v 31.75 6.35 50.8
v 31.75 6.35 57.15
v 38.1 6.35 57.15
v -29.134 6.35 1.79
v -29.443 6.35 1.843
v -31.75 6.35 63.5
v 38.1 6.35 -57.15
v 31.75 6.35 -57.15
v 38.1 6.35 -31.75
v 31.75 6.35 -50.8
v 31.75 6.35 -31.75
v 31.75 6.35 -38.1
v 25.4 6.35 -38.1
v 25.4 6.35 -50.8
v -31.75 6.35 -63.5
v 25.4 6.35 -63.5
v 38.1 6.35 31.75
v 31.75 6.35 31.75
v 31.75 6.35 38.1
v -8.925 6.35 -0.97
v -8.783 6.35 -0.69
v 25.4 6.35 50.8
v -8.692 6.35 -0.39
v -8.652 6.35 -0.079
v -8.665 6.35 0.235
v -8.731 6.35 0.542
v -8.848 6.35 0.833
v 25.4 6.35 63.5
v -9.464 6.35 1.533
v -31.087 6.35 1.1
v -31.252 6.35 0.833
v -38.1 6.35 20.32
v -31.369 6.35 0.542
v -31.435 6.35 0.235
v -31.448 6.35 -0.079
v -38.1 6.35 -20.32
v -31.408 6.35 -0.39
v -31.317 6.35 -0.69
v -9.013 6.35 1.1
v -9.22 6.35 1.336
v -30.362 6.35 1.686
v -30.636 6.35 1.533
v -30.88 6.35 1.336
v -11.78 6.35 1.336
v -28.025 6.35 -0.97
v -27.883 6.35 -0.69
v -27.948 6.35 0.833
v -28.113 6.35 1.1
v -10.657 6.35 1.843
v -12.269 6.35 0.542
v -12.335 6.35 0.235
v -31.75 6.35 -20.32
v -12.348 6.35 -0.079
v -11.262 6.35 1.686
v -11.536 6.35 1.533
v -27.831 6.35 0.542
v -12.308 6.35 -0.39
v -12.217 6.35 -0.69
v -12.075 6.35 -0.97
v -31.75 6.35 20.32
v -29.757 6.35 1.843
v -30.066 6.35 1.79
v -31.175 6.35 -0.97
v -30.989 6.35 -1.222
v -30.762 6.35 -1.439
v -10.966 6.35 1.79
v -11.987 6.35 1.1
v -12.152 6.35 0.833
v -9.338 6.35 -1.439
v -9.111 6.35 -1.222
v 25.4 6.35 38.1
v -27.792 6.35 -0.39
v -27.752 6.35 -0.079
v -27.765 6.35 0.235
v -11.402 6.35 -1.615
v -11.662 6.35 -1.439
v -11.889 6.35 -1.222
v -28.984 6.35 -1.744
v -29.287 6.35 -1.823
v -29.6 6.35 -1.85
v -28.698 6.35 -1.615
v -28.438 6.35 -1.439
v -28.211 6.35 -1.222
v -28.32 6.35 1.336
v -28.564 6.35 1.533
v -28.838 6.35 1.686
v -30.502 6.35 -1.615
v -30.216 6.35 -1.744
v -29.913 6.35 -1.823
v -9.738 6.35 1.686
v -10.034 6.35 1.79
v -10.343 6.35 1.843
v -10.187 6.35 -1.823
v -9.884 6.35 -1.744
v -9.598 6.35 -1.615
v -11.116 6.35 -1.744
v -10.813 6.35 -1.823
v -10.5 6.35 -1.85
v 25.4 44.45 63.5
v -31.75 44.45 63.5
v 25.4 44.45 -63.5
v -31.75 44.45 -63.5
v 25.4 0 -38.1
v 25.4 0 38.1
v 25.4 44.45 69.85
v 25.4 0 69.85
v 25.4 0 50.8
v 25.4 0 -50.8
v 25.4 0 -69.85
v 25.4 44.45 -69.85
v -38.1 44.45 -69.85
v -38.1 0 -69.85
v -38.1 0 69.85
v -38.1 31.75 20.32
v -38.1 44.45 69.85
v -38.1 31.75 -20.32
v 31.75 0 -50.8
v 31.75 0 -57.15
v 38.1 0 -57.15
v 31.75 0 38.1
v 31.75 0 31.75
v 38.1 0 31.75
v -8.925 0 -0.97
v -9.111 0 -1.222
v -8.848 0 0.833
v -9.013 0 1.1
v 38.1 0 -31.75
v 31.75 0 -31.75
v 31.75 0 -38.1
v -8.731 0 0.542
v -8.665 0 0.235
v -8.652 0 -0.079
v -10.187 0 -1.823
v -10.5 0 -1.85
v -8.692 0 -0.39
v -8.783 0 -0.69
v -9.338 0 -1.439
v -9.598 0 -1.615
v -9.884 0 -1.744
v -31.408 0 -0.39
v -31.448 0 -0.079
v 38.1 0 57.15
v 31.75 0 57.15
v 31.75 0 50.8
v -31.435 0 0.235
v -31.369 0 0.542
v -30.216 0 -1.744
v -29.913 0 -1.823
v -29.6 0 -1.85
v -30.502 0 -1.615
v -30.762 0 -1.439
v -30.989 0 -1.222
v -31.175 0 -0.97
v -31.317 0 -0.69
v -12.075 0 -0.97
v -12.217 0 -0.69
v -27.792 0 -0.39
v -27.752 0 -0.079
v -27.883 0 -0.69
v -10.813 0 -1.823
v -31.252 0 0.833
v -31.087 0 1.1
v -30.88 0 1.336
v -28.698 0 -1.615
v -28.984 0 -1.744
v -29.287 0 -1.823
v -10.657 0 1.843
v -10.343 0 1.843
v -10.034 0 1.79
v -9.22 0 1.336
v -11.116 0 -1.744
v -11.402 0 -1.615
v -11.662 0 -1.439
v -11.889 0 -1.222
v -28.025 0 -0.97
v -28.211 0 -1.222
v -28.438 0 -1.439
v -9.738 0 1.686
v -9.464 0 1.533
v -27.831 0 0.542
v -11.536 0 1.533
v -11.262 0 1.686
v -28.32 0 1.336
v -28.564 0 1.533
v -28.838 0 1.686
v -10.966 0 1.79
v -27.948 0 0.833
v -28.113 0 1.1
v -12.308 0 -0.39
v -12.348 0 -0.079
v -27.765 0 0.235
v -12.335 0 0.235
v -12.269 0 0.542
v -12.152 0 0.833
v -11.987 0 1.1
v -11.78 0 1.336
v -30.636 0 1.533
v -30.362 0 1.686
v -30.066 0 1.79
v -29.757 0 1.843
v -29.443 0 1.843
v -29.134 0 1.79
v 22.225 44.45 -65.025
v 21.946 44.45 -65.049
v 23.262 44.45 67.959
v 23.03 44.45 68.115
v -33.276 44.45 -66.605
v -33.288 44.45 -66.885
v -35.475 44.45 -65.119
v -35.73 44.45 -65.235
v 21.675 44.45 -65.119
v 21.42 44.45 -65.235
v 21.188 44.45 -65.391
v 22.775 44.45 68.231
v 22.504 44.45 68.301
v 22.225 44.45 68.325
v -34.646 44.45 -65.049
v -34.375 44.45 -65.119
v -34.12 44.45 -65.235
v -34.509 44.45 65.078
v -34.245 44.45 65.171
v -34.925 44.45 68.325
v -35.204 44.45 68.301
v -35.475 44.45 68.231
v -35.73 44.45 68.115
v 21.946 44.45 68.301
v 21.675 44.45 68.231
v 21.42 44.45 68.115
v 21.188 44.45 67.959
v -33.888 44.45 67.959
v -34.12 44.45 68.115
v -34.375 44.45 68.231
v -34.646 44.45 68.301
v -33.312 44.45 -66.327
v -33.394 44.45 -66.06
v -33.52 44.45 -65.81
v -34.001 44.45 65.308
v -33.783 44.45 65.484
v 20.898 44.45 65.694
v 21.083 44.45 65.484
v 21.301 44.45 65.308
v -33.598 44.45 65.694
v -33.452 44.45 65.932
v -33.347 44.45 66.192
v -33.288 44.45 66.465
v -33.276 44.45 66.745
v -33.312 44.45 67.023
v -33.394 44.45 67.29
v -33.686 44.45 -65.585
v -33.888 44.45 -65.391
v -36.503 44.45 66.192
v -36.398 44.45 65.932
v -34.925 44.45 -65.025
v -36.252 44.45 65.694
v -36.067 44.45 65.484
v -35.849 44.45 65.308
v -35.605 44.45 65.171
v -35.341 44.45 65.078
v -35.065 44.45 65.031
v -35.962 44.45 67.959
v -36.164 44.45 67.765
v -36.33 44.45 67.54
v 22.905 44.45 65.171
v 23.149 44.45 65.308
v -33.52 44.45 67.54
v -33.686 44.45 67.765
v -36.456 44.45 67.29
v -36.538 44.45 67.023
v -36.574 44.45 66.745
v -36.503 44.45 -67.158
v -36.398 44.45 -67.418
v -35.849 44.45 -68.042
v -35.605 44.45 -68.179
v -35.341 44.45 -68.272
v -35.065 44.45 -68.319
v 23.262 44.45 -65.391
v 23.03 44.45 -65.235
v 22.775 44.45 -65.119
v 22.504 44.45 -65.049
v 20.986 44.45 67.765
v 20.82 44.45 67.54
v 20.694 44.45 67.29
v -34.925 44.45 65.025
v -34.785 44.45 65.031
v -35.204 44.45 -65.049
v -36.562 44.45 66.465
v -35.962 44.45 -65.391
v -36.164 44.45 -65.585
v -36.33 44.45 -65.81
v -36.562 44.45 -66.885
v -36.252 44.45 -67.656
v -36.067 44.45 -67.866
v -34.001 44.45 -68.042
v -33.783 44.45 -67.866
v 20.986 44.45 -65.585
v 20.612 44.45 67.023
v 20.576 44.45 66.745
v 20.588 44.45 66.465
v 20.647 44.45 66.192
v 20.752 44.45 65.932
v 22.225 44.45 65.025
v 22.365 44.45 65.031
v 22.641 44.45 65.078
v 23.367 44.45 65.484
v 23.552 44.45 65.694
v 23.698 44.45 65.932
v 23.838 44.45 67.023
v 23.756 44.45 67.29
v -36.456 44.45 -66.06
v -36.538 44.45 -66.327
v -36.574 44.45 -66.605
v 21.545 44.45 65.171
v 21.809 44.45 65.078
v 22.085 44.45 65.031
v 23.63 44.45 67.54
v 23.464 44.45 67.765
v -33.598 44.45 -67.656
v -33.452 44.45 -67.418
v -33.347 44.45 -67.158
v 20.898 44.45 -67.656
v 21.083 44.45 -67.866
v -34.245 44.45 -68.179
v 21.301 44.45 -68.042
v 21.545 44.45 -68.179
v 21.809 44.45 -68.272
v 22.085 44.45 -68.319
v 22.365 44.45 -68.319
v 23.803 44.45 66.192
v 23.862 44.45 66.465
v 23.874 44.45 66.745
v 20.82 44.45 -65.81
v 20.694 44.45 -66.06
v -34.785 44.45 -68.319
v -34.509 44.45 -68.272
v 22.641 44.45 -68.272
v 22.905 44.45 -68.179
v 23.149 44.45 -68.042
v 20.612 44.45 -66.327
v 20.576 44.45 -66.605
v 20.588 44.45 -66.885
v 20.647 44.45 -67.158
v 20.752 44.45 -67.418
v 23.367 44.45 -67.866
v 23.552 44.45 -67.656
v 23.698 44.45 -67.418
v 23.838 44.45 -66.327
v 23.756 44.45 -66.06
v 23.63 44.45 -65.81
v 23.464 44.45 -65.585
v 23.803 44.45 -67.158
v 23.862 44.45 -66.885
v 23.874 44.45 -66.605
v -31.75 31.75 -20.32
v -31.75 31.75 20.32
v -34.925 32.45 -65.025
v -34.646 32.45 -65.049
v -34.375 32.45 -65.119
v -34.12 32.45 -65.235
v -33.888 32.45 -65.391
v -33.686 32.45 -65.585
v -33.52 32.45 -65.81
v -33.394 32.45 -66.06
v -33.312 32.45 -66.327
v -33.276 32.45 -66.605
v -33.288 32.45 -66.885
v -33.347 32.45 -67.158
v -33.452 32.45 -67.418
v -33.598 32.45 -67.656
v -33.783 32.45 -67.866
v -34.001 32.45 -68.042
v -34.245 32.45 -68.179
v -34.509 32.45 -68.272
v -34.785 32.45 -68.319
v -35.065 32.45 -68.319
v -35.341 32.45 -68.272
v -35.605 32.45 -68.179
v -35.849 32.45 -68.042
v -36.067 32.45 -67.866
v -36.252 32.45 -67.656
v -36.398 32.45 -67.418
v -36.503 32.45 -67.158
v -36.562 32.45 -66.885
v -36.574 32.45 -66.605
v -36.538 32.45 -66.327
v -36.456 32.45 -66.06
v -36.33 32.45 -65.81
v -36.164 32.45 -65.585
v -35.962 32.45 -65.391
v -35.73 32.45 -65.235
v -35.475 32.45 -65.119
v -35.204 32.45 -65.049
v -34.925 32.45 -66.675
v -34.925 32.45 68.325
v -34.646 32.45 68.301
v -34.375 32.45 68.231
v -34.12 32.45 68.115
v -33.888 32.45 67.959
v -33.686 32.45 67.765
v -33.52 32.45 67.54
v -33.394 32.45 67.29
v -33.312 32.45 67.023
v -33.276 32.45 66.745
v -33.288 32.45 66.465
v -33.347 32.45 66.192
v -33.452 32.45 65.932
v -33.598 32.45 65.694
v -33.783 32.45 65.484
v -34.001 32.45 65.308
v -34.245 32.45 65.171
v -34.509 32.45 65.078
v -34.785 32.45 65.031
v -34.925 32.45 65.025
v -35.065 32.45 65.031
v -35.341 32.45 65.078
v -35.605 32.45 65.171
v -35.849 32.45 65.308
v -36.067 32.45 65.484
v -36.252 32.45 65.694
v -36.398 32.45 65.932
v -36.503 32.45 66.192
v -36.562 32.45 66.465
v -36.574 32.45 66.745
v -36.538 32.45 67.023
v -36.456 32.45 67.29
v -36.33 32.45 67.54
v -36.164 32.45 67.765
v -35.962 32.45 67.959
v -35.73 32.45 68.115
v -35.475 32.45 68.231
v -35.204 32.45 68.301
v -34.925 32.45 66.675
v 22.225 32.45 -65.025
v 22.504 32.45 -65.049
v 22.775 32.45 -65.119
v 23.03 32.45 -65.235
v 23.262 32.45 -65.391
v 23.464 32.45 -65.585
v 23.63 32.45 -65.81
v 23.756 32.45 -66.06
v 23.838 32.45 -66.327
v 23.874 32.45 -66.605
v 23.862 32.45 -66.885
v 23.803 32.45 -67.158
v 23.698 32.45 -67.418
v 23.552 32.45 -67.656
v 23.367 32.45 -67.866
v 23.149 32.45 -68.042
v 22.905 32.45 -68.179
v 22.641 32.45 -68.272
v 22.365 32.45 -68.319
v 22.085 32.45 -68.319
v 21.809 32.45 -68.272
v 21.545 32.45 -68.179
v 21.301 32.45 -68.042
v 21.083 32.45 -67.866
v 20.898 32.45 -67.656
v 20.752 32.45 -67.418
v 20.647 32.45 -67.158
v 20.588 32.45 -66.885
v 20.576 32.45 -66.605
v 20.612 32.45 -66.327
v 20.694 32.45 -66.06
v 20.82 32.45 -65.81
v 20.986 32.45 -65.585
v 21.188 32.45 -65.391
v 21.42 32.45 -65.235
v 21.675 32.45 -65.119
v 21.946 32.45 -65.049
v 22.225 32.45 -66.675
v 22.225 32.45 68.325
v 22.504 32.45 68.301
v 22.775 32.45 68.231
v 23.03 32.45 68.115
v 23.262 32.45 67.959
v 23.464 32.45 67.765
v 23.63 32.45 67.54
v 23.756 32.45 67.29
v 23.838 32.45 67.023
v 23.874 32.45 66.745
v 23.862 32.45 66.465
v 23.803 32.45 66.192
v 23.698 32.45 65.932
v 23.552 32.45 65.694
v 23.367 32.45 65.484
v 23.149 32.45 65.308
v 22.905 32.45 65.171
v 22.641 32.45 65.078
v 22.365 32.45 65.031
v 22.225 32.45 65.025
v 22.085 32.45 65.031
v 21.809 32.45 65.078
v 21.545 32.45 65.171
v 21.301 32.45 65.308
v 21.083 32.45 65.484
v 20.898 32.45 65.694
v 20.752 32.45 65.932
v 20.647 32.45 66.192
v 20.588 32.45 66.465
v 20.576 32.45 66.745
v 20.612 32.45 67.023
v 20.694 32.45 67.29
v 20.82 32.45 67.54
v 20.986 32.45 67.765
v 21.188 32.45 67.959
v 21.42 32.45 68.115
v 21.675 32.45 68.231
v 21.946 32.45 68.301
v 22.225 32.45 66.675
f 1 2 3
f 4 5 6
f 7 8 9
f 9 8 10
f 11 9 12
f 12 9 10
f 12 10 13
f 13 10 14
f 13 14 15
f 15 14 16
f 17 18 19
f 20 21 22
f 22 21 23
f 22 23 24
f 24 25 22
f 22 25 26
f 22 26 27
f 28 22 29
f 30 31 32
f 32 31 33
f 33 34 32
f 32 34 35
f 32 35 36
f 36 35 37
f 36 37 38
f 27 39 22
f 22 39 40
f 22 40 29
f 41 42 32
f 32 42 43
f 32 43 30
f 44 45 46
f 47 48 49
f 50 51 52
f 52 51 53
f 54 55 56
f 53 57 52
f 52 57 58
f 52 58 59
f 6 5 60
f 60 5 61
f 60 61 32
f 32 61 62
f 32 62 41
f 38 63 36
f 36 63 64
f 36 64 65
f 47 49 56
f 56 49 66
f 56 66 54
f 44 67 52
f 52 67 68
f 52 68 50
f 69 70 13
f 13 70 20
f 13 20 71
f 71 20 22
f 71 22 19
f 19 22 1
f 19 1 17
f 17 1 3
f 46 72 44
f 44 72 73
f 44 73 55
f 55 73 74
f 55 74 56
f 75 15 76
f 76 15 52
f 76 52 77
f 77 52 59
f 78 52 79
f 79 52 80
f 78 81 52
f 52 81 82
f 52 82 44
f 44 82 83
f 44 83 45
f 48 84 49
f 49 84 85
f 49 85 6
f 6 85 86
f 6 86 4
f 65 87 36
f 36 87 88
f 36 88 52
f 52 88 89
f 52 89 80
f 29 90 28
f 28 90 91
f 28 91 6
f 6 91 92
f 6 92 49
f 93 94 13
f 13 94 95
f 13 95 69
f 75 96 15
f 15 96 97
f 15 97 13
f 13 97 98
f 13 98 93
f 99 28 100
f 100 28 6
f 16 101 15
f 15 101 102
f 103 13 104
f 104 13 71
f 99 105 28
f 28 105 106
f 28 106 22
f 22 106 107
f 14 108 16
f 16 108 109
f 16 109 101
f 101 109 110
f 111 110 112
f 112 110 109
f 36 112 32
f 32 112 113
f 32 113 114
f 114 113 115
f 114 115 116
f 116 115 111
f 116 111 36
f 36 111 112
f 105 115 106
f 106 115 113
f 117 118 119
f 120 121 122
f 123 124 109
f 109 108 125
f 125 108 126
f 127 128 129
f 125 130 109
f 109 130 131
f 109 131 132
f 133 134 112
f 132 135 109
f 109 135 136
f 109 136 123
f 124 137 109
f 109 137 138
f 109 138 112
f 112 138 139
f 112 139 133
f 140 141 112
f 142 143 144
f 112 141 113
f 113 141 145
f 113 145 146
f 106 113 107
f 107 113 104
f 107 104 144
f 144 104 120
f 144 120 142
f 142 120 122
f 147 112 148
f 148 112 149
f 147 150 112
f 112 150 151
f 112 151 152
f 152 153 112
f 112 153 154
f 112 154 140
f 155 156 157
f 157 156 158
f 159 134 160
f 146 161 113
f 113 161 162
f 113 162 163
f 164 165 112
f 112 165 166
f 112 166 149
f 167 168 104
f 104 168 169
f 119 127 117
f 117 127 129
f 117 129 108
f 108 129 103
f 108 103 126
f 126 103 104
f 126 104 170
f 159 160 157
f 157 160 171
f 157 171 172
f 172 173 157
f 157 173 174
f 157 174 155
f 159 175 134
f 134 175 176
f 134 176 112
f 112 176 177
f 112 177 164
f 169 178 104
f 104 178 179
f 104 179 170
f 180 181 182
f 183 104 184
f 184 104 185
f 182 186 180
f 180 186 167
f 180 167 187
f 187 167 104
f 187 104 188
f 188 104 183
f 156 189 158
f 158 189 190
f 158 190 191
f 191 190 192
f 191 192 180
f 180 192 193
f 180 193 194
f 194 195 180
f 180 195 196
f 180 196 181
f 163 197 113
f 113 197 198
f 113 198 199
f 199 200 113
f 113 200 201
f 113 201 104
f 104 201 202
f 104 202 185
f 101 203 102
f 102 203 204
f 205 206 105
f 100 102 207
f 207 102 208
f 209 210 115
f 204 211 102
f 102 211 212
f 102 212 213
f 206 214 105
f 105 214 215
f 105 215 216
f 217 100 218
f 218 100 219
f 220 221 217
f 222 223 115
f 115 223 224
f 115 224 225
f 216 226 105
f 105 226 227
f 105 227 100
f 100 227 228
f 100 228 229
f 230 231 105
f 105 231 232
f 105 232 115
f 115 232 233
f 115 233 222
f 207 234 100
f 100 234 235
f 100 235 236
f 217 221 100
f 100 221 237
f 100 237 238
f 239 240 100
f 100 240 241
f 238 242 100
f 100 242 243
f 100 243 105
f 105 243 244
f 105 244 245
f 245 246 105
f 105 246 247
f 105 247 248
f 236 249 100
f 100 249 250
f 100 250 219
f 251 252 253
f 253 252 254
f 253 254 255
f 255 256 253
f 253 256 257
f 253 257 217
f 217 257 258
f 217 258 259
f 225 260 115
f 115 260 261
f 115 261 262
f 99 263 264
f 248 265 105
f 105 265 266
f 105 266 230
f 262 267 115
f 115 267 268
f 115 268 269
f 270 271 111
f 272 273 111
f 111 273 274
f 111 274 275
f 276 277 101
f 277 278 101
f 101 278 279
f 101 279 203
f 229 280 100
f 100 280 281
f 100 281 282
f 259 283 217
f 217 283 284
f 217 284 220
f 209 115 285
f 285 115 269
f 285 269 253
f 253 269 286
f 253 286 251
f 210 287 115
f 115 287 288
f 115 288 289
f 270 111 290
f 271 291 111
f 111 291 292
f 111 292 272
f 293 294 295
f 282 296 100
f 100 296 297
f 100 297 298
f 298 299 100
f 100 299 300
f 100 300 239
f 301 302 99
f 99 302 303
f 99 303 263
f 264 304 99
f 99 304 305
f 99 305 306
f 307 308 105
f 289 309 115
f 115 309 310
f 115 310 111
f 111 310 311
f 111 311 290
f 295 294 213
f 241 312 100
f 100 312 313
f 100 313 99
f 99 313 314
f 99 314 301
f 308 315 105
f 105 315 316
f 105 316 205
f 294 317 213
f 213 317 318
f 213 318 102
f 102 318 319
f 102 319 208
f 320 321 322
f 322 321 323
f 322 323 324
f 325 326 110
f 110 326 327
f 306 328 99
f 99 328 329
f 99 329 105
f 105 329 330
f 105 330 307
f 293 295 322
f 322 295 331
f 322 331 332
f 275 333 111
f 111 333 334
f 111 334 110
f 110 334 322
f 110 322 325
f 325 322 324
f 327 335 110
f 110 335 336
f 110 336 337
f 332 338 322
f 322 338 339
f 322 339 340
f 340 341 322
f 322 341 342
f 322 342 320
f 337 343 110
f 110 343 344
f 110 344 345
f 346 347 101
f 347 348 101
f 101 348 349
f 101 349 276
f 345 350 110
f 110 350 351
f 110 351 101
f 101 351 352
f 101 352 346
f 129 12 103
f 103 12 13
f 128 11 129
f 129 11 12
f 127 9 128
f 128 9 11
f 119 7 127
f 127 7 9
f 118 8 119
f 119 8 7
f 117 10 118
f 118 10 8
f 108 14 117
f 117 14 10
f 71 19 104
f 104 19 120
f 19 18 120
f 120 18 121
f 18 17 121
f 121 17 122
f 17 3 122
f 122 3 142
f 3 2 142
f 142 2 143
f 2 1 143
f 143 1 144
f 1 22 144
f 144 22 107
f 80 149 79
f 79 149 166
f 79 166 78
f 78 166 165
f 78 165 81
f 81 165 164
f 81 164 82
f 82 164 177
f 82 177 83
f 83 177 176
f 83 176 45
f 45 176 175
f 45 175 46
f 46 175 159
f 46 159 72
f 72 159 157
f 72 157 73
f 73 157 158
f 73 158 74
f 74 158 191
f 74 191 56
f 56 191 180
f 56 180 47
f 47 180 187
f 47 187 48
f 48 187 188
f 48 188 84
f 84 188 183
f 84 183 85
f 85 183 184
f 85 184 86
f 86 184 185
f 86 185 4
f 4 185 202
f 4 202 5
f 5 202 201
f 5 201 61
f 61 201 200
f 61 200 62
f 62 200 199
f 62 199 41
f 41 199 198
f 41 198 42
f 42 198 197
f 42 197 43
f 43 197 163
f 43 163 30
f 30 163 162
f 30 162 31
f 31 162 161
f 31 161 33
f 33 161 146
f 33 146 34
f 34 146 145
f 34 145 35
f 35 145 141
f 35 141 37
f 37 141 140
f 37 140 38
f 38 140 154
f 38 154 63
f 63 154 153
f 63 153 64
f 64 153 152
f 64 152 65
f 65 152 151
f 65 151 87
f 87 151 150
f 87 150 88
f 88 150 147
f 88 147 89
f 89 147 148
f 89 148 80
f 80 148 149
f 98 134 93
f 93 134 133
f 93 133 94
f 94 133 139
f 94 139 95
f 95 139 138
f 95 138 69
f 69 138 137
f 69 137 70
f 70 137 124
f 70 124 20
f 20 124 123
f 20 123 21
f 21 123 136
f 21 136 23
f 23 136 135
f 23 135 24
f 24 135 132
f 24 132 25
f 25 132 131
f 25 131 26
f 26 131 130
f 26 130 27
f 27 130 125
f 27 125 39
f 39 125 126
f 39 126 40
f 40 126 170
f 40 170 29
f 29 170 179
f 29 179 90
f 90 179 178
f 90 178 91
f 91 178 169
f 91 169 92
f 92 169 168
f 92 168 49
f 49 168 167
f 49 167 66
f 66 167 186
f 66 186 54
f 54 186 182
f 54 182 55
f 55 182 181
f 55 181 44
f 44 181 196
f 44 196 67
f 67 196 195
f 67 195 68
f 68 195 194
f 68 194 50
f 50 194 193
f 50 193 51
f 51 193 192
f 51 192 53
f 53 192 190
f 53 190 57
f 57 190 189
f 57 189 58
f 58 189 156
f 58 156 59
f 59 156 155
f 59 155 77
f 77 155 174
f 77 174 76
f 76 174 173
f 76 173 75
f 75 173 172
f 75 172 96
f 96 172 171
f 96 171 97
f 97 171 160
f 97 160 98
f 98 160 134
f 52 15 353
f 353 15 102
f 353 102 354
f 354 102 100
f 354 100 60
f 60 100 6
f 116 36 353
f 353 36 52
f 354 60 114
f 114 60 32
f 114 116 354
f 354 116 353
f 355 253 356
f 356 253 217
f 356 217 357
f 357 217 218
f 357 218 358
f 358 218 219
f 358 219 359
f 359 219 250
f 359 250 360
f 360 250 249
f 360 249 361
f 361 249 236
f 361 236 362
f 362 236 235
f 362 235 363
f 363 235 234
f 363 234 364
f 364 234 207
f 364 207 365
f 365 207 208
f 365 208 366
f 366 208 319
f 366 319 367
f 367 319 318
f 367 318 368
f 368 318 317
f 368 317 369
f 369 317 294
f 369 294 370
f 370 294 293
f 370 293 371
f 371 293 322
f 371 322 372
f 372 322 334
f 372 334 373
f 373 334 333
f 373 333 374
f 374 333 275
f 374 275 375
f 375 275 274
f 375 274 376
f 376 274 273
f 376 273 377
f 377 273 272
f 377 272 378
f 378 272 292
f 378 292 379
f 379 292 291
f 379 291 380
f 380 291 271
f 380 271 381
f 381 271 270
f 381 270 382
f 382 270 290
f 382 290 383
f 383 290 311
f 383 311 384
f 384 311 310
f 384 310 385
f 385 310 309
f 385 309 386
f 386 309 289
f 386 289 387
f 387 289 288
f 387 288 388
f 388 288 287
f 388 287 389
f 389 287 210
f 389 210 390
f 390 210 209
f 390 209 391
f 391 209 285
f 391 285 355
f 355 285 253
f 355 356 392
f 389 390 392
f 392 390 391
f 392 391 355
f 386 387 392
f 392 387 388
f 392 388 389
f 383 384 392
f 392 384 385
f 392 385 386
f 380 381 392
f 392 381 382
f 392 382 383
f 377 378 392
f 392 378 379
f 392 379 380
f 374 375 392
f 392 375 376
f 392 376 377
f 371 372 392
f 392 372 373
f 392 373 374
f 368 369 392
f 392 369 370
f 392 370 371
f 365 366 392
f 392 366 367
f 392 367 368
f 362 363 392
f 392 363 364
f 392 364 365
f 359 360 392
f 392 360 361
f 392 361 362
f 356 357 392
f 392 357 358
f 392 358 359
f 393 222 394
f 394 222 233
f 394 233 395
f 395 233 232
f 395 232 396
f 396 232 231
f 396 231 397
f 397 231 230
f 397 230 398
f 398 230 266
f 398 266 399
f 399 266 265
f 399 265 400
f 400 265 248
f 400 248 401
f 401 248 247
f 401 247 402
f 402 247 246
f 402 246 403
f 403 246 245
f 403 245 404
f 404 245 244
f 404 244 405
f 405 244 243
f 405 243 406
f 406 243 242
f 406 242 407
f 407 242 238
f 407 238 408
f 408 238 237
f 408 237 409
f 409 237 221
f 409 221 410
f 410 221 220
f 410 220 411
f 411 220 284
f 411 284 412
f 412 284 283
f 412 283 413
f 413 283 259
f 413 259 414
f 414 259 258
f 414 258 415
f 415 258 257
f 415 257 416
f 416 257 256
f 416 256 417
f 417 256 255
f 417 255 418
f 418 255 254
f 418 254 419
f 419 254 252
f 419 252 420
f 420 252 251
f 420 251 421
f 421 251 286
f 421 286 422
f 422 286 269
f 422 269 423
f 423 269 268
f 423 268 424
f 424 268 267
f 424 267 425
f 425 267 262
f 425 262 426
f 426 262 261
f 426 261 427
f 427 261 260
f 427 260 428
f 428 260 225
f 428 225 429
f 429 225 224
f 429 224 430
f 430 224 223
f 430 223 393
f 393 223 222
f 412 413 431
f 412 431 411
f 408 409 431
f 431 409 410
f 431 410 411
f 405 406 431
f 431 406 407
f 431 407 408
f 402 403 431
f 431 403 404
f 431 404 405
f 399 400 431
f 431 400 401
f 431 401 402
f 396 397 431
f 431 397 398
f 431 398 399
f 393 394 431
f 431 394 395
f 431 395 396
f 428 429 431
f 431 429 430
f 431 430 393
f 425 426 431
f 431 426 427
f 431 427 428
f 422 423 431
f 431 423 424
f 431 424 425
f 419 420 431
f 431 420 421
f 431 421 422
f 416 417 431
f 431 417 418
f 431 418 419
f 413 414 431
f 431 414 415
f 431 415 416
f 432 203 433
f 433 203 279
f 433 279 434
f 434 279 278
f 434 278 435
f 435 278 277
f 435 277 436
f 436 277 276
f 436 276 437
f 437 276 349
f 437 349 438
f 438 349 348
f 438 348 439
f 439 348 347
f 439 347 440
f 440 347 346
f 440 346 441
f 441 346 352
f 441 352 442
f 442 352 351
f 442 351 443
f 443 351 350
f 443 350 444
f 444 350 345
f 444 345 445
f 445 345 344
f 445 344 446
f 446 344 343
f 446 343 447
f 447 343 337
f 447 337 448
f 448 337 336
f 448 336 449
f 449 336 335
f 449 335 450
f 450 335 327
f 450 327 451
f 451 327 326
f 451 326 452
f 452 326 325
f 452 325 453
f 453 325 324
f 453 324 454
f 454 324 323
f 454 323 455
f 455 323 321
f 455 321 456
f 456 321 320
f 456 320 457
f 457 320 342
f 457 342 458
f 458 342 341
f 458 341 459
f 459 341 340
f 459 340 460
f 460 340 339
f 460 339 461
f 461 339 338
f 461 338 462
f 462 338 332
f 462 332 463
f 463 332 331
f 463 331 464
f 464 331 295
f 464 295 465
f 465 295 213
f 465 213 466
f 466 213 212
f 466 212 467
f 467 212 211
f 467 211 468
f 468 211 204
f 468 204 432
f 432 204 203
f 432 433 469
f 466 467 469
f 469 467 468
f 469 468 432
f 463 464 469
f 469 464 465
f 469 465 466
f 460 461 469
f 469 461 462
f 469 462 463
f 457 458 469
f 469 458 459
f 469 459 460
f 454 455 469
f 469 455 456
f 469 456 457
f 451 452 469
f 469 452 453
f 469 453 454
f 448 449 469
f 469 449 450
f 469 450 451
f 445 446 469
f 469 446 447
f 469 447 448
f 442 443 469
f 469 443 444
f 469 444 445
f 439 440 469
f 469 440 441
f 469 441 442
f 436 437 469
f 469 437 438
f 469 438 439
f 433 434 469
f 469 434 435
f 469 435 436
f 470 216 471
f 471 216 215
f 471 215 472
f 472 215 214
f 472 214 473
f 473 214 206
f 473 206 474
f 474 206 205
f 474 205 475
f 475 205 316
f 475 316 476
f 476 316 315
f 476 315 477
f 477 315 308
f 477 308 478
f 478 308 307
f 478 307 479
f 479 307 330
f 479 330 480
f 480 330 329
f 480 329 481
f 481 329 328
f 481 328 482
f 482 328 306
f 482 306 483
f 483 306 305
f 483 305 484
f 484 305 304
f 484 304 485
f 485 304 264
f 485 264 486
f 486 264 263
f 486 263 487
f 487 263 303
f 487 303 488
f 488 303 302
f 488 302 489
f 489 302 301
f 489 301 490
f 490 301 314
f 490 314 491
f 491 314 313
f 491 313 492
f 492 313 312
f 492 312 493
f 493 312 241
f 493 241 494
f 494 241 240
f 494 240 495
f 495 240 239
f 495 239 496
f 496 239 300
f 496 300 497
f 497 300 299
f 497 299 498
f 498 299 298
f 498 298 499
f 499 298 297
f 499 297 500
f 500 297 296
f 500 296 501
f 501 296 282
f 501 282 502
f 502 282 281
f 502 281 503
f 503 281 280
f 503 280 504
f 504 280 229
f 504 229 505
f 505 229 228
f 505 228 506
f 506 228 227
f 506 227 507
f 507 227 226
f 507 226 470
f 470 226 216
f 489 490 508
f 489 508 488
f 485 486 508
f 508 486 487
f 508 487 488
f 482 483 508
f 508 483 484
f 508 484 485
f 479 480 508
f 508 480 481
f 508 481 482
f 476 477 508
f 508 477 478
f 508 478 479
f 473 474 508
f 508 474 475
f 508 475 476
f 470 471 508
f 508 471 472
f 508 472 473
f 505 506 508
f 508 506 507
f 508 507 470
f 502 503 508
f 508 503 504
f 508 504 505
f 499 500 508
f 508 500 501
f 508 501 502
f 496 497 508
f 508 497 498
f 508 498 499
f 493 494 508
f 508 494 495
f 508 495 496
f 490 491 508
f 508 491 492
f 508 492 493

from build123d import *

# Parameters (mm, degrees)
SKETCH1_W                                  = 63.5
SKETCH1_H                                  = 139.7
BOSS_EXTRUDE1_DEPTH                        = 6.35
SKETCH3_W                                  = 63.5
SKETCH3_H                                  = 6.35
BOSS_EXTRUDE2_DEPTH                        = 38.1
BOSS_EXTRUDE3_DEPTH                        = 6.35
SKETCH7_R                                  = 1.85
CUT_EXTRUDE1_DEPTH                         = 92.139645599
SKETCH8_W                                  = 6.35
SKETCH8_H                                  = 43.18
BOSS_EXTRUDE4_DEPTH                        = 38.1
SKETCH9_W                                  = 40.64
SKETCH9_H                                  = 12.7
BOSS_EXTRUDE5_DEPTH                        = 6.35
SKETCH10_R                                 = 1.65
CUT_EXTRUDE2_DEPTH                         = 12
MIRROR2_AT_THE_SECOND_PLANE_COPY_1_SKETC_R = 1.65
MIRROR2_AT_THE_SECOND_PLANE_COPY_1_DEPTH   = 12


with BuildPart() as part:
    # Sketch1 → Boss-Extrude1 (new body)
    with BuildSketch(Plane(origin=(0, 0, 0), x_dir=(1, 0, 0), z_dir=(0, 1, 0))):
        with Locations((-6.35, 0)):
            Rectangle(SKETCH1_W, SKETCH1_H)
    extrude(amount=BOSS_EXTRUDE1_DEPTH)

    # Sketch3 → Boss-Extrude2 (add)
    with BuildSketch(Plane(origin=(0, 6.35, 0), x_dir=(1, 0, 0), z_dir=(0, 1, 0))):
        with Locations((-6.35, 66.675)):
            Rectangle(SKETCH3_W, SKETCH3_H)
        with Locations((-6.35, -66.675)):
            Rectangle(SKETCH3_W, SKETCH3_H)
    extrude(amount=BOSS_EXTRUDE2_DEPTH)

    # Sketch6 → Boss-Extrude3 (add)
    with BuildSketch(Plane(origin=(0, 6.35, 0), x_dir=(1, 0, 0), z_dir=(0, 1, 0))):
        Polygon((25.4, 50.8), (31.75, 50.8), (31.75, 57.15), (38.1, 57.15), (38.1, 31.75), (31.75, 31.75), (31.75, 38.1), (25.4, 38.1), align=None)
    boss_extrude3 = extrude(amount=-BOSS_EXTRUDE3_DEPTH)

    # Mirror1: Boss-Extrude3 across plane
    add(boss_extrude3.mirror(Plane.XY))

    # Sketch7 → Cut-Extrude1 (cut, through all)
    with BuildSketch(Plane.XZ):
        with Locations(Location((-10.5, 0, 0), (0, 0, 270))):
            Circle(SKETCH7_R)
        with Locations(Location((-29.6, 0, 0), (0, 0, 270))):
            Circle(SKETCH7_R)
    extrude(amount=-CUT_EXTRUDE1_DEPTH, mode=Mode.SUBTRACT)

    # Sketch8 → Boss-Extrude4 (add)
    with BuildSketch(Plane(origin=(0, 6.35, 0), x_dir=(1, 0, 0), z_dir=(0, 1, 0))):
        with Locations((-34.925, 41.91)):
            Rectangle(SKETCH8_W, SKETCH8_H)
        with Locations((-34.925, -41.91)):
            Rectangle(SKETCH8_W, SKETCH8_H)
    extrude(amount=BOSS_EXTRUDE4_DEPTH)

    # Sketch9 → Boss-Extrude5 (add)
    with BuildSketch(Plane.ZY.offset(38.1)):
        with Locations((0, 38.1)):
            Rectangle(SKETCH9_W, SKETCH9_H)
    extrude(amount=-BOSS_EXTRUDE5_DEPTH)

    # Sketch10 → Cut-Extrude2 (cut)
    with BuildSketch(Plane(origin=(0, 44.45, 0), x_dir=(1, 0, 0), z_dir=(0, 1, 0))):
        with Locations(Location((-34.925, 66.675, 0), (0, 0, 270))):
            Circle(SKETCH10_R)
    cut_extrude2 = extrude(amount=-CUT_EXTRUDE2_DEPTH, mode=Mode.SUBTRACT)

    # Mirror2: Cut-Extrude2 across plane
    add(cut_extrude2.mirror(Plane.ZY.offset(6.35)), mode=Mode.SUBTRACT)

    # Mirror2 at the second plane: Cut-Extrude2 across plane
    add(cut_extrude2.mirror(Plane.XY), mode=Mode.SUBTRACT)

    # Mirror2 at the second plane copy 1 sketc → Mirror2 at the second plane copy 1 (cut)
    with BuildSketch(Plane(origin=(-12.7, 44.45, 0), x_dir=(-1, 0, 0), z_dir=(0, 1, 0))):
        with Locations(Location((-34.925, 66.675, 0), (0, 0, 270))):
            Circle(MIRROR2_AT_THE_SECOND_PLANE_COPY_1_SKETC_R)
    extrude(amount=-MIRROR2_AT_THE_SECOND_PLANE_COPY_1_DEPTH, mode=Mode.SUBTRACT)


solid = part.part
